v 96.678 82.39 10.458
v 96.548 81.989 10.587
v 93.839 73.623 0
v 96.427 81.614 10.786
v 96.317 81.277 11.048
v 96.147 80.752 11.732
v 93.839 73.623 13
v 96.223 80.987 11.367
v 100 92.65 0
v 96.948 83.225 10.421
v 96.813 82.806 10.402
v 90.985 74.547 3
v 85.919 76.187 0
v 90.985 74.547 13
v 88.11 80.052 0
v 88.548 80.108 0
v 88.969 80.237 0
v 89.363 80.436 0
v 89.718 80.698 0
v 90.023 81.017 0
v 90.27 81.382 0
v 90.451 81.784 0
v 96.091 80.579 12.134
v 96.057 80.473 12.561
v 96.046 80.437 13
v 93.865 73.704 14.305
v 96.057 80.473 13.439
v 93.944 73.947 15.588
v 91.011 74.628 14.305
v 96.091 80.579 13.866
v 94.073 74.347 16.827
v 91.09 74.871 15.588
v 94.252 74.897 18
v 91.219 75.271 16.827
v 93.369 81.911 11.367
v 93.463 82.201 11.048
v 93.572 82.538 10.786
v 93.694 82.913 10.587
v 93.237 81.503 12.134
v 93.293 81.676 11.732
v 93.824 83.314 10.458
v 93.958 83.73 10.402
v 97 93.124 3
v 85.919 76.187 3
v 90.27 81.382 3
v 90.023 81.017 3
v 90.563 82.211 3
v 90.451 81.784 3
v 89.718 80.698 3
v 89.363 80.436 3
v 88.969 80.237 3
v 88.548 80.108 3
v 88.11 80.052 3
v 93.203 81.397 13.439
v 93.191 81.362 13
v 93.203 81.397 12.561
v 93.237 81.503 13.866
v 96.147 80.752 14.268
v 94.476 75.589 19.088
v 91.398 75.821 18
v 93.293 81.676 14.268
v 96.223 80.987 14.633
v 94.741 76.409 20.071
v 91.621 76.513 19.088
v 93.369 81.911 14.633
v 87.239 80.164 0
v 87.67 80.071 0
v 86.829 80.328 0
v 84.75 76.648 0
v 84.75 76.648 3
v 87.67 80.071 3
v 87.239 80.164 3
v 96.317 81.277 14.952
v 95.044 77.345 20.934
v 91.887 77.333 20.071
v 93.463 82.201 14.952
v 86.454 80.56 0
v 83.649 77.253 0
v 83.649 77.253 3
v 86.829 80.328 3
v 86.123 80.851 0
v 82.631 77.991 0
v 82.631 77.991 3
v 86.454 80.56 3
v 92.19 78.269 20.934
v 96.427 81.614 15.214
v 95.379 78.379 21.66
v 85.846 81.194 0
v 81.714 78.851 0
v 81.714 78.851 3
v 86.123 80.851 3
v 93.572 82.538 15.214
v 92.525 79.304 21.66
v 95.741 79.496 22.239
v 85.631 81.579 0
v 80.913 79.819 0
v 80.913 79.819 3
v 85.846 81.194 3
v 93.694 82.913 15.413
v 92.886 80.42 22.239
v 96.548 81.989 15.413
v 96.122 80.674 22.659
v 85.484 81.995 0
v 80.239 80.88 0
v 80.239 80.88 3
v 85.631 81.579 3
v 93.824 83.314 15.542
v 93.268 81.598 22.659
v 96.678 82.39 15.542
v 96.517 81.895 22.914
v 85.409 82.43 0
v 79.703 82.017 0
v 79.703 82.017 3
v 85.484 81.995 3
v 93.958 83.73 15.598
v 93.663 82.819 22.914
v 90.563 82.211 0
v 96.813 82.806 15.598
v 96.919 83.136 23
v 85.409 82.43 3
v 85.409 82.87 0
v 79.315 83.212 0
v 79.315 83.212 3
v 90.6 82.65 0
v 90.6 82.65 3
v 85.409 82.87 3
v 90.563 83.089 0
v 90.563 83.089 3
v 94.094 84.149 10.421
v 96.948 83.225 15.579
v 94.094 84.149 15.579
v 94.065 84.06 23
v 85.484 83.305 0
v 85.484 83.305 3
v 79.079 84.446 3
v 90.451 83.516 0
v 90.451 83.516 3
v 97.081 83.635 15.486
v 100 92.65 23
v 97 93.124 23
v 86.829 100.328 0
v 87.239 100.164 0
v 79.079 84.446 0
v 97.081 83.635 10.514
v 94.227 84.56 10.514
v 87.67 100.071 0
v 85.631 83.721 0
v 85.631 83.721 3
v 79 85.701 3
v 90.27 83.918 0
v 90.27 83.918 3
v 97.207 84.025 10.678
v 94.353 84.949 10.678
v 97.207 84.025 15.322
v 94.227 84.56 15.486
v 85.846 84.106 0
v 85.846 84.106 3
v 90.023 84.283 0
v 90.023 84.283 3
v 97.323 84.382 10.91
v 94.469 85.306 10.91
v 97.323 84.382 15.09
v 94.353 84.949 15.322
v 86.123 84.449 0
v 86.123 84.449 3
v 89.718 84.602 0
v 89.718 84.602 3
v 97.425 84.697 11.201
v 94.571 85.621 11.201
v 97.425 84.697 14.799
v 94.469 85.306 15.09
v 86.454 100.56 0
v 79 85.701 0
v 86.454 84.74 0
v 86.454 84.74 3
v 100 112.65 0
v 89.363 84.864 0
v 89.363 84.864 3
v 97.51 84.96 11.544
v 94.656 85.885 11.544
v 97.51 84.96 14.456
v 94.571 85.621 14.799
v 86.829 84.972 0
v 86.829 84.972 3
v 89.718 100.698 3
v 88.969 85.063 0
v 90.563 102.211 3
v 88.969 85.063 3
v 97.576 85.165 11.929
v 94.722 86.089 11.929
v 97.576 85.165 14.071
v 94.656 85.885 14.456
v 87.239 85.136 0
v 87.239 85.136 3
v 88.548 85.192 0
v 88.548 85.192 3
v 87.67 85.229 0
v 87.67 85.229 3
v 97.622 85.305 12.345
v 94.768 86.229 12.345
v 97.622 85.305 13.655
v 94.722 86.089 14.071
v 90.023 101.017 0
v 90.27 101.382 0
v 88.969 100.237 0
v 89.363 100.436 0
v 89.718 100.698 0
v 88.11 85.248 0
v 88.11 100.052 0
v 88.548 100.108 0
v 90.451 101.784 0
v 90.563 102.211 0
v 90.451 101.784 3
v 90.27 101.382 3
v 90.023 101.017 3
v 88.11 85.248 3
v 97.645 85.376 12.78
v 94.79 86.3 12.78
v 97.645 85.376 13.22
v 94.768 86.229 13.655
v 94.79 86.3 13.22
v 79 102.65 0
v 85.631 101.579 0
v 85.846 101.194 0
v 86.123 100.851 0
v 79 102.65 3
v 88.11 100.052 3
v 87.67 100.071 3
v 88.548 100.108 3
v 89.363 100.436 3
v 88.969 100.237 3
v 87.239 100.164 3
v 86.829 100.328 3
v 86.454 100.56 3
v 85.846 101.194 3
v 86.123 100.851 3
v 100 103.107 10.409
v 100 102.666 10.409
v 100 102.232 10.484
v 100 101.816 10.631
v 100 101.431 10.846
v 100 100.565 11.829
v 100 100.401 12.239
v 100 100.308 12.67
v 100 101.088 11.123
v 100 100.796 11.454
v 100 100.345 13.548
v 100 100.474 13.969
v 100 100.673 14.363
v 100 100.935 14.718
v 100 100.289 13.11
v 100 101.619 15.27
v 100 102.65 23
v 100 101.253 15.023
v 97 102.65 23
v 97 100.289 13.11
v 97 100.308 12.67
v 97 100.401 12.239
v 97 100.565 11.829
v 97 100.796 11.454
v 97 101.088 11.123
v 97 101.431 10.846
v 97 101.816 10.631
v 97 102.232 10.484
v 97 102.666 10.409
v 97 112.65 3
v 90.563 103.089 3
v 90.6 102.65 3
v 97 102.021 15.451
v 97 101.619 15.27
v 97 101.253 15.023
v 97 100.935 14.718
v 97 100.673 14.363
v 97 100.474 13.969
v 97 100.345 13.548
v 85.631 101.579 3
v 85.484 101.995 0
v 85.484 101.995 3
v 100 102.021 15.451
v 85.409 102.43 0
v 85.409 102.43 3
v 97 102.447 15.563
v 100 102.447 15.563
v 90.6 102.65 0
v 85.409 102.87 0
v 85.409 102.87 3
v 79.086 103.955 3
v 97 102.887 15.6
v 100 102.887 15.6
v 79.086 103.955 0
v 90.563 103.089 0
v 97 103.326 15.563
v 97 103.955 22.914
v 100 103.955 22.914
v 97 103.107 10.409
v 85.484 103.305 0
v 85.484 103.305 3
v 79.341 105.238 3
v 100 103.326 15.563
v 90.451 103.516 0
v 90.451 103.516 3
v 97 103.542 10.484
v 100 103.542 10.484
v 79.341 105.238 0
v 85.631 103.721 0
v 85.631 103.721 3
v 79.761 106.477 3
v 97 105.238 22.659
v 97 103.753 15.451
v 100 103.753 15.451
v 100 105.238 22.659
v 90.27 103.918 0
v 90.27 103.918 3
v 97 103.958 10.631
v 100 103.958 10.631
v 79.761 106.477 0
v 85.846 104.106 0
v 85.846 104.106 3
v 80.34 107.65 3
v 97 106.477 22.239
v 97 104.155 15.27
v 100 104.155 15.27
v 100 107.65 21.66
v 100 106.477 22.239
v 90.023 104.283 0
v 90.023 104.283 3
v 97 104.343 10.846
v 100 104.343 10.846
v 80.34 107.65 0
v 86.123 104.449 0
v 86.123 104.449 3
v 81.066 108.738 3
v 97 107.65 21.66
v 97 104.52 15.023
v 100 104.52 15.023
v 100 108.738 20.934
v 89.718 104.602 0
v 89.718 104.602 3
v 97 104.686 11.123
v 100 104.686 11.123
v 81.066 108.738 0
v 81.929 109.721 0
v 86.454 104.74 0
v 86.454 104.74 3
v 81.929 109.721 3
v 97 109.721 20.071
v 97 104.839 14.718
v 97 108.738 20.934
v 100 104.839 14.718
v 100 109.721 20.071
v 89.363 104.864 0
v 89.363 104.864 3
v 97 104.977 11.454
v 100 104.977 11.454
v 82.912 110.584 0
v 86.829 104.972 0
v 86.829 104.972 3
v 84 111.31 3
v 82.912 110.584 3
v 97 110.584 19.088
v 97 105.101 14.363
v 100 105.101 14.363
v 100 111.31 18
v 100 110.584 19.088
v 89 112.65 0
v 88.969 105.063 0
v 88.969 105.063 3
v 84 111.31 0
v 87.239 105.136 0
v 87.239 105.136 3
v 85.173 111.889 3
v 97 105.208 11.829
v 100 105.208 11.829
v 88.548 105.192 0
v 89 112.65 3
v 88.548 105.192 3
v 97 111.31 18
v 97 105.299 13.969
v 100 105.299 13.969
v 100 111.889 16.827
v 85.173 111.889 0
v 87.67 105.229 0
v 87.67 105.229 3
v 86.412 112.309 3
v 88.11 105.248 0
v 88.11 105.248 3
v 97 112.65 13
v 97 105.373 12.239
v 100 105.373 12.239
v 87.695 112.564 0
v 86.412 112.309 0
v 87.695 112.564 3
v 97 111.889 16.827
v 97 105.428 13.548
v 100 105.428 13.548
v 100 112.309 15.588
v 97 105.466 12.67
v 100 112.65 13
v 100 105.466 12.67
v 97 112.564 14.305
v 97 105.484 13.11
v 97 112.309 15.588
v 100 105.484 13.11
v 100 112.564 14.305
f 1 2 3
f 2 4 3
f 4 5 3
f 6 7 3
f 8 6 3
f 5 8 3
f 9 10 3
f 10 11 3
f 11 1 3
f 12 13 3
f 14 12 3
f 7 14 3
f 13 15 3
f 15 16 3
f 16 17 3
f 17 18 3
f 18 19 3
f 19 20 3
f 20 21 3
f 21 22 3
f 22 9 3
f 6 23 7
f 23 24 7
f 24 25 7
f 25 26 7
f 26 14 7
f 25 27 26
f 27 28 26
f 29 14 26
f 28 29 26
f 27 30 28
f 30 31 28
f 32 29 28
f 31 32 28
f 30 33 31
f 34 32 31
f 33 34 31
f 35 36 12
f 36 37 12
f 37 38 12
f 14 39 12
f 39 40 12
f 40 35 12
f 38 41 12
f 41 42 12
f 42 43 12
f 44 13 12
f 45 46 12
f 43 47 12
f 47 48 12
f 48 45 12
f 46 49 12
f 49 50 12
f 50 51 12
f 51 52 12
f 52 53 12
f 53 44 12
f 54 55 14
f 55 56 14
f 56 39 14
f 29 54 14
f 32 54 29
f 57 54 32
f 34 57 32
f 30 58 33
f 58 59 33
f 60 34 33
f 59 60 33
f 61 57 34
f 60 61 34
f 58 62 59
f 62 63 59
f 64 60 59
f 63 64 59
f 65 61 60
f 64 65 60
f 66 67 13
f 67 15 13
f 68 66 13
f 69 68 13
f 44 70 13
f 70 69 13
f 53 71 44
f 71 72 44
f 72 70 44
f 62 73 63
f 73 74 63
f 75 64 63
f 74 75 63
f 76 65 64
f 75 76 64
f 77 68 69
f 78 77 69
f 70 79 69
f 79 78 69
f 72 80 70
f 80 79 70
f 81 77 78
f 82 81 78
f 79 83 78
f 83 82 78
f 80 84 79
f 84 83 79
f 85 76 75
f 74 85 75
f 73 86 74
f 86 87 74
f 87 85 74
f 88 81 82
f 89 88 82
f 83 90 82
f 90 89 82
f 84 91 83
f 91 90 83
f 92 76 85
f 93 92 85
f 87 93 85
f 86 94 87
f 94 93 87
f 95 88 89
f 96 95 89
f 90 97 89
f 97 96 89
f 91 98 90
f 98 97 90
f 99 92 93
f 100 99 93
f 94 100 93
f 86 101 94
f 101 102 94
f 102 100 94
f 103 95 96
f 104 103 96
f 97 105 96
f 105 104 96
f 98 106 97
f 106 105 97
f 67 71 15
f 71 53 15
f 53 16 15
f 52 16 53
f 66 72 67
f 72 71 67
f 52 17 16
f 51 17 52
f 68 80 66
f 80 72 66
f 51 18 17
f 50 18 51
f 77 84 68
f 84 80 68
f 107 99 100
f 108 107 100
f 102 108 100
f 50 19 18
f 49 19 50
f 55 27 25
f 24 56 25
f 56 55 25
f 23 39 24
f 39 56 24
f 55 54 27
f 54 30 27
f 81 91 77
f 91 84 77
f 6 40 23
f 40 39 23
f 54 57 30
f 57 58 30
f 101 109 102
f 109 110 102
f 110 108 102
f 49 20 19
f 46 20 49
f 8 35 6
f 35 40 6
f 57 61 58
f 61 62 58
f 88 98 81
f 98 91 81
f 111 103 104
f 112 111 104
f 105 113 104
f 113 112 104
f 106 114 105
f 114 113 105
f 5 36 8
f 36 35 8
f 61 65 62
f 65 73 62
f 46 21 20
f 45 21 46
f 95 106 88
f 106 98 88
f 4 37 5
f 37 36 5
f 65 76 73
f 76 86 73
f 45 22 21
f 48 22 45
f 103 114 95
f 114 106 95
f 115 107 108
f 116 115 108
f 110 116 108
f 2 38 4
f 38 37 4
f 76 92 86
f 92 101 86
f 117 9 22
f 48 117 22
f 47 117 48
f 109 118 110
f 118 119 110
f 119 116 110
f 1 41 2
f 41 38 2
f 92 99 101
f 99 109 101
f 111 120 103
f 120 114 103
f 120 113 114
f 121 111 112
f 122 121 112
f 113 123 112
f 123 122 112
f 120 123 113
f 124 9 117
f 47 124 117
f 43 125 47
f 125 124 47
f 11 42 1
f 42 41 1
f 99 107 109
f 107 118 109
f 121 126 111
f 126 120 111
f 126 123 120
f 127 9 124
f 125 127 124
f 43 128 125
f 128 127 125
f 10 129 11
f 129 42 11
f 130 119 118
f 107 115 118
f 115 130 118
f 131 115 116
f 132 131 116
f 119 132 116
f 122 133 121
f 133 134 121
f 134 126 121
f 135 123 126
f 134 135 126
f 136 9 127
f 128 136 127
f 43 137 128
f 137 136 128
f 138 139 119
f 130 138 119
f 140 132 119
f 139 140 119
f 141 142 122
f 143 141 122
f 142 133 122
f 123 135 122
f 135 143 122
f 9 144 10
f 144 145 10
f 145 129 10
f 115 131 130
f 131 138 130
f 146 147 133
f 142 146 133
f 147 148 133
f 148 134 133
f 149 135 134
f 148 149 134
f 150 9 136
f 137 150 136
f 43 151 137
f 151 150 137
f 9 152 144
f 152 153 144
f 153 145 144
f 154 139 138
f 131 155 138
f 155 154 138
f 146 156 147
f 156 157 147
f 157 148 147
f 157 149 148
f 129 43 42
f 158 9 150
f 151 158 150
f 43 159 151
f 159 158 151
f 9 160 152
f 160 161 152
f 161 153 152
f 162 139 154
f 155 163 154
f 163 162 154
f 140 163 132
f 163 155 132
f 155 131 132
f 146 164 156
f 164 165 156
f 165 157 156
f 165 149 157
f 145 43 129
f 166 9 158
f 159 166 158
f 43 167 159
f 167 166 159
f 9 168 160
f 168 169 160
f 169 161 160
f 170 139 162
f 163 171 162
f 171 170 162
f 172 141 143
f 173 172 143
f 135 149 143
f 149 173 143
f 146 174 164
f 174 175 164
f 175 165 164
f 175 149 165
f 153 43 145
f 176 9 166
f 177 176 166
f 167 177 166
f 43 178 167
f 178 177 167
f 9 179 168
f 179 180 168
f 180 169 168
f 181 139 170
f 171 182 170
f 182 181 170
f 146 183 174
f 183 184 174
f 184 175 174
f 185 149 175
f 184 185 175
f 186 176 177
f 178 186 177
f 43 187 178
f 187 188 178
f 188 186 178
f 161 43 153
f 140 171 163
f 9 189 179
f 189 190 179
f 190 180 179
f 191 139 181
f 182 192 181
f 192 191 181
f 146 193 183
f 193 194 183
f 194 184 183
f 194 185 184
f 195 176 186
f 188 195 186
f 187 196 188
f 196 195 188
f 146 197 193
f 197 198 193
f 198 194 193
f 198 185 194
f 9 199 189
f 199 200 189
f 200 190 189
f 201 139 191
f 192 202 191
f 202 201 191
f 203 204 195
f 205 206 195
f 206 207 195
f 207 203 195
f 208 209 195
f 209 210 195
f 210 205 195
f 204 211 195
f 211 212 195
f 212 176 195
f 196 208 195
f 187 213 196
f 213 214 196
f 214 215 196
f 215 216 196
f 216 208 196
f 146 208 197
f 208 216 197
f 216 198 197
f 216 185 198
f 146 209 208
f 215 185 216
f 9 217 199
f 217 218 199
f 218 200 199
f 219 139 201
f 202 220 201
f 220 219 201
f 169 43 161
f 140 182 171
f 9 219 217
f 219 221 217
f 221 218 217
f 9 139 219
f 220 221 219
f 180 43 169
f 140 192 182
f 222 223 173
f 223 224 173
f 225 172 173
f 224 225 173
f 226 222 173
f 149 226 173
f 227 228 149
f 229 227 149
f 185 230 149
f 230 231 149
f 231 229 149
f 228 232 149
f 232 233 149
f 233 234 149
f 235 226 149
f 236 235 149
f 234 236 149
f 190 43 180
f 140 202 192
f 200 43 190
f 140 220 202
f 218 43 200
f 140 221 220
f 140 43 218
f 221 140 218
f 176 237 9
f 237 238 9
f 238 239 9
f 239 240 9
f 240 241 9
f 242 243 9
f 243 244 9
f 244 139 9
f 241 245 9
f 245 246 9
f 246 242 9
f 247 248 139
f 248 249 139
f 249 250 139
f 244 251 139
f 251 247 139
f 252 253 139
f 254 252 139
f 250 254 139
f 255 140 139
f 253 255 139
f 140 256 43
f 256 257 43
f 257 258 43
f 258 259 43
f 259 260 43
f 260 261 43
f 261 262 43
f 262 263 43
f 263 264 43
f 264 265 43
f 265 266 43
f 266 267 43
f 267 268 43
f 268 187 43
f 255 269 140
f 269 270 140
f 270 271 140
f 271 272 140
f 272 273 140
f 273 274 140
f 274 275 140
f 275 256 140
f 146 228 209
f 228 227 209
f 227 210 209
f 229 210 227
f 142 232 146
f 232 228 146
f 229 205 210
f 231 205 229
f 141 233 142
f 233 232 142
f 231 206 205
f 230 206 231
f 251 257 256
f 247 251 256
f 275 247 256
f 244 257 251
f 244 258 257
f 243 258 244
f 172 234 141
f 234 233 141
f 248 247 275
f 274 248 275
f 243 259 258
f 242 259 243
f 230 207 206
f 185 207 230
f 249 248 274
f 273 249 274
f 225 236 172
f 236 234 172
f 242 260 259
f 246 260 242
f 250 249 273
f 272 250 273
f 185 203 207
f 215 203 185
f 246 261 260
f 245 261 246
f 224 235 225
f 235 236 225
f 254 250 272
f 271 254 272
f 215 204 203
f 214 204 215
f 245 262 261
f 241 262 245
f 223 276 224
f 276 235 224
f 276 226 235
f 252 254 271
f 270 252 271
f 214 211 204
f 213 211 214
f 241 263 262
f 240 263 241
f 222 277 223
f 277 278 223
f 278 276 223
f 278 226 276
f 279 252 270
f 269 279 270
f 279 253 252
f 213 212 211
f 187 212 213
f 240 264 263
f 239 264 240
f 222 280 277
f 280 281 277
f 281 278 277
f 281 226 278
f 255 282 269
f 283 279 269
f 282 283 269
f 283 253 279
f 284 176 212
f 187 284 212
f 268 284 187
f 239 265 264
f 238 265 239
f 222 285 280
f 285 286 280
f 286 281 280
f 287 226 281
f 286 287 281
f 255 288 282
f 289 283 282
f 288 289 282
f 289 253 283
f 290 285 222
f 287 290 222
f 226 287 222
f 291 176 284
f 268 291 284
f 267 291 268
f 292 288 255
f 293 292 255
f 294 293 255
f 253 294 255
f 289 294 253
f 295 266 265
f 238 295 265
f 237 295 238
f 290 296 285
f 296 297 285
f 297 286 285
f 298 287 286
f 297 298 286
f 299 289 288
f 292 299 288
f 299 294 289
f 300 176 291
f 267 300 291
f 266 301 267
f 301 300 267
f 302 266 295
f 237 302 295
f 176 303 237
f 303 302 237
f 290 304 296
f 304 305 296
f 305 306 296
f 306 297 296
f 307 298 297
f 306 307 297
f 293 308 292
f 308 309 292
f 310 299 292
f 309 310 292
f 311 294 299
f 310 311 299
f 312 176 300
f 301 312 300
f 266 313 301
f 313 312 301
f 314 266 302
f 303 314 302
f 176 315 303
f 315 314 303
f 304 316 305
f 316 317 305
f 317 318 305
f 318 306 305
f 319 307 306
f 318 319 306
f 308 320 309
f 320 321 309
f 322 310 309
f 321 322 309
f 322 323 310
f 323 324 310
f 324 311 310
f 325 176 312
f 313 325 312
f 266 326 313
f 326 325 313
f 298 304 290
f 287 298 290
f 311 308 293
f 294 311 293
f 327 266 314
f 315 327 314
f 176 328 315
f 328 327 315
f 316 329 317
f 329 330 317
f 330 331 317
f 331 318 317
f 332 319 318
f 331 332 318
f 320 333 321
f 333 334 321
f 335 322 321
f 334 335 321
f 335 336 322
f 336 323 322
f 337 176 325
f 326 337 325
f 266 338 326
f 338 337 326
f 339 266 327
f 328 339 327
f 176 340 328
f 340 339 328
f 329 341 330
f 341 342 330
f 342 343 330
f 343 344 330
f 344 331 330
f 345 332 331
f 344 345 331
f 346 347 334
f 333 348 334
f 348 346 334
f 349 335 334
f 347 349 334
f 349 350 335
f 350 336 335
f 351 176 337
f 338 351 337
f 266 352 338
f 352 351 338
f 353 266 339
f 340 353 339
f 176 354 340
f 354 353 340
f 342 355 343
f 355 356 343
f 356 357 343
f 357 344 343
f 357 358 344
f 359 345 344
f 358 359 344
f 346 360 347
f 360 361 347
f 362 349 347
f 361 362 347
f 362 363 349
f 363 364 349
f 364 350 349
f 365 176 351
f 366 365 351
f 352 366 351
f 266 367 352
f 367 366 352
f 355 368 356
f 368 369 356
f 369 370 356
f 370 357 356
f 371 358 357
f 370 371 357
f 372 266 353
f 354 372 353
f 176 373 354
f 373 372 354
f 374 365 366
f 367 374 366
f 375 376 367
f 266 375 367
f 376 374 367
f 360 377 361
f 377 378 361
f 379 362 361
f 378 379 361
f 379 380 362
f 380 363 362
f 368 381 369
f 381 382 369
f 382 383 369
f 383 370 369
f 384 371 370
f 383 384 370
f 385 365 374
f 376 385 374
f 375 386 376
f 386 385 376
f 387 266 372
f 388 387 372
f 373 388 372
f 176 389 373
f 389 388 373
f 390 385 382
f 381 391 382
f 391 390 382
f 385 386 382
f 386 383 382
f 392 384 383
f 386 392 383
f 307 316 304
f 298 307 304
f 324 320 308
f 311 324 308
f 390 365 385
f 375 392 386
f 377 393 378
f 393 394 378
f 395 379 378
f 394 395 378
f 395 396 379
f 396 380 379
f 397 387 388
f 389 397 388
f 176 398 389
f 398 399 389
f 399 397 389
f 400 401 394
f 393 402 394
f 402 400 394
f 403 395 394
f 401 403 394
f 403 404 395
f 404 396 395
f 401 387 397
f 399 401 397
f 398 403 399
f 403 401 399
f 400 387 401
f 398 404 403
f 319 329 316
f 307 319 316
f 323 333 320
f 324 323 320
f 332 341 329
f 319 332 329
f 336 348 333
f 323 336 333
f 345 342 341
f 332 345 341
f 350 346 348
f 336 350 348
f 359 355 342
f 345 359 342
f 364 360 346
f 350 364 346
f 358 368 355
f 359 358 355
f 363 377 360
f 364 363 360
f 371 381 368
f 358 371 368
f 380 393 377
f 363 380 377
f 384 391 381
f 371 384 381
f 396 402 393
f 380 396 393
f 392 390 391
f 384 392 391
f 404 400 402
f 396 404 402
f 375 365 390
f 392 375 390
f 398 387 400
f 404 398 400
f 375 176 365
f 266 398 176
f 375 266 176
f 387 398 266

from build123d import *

# Parameters (mm, degrees)
BOSS_EXTRU_1_DEPTH      = 23
BOSS_EXTRU_2_DEPTH      = 3
ENL_V_MAT_EXTRU_1_DEPTH = 3
ESQUISSE4_R             = 2.6
ENL_V_MAT_EXTRU_2_DEPTH = 3
ESQUISSE5_R             = 2.6
ENL_V_MAT_EXTRU_3_DEPTH = 3
ESQUISSE6_R             = 2.6
ENL_V_MAT_EXTRU_4_DEPTH = 3
CONG_1_R                = 10


with BuildPart() as part:
    # Esquisse1 → Boss.-Extru.1 (new body)
    with BuildSketch(Plane.XY):
        Polygon((100, 92.65), (100, 112.65), (97, 112.65), (97, 93.123594611), (90.984838829, 74.546771861), (93.838946748, 73.622613873), align=None)
    extrude(amount=BOSS_EXTRU_1_DEPTH)

    # Esquisse2 → Boss.-Extru.2 (add)
    with BuildSketch(Plane.XY):
        Polygon((90.984838829, 74.546771861), (79, 74.546771861), (79, 112.65), (97, 112.65), (97, 93.123594611), align=None)
    extrude(amount=BOSS_EXTRU_2_DEPTH)

    # Esquisse3 → Enlèv. mat.-Extru.1 (cut)
    with BuildSketch(Plane.XY.offset(3)):
        Polygon((90.984838829, 74.546771861), (79, 78.427453619), (79, 74.546771861), align=None)
    extrude(amount=-ENL_V_MAT_EXTRU_1_DEPTH, mode=Mode.SUBTRACT)

    # Esquisse4 → Enlèv. mat.-Extru.2 (cut)
    with BuildSketch(Plane.XY.offset(3)):
        with Locations((88, 102.65)):
            Circle(ESQUISSE4_R)
        with Locations((88, 82.65)):
            Circle(ESQUISSE4_R)
    extrude(amount=-ENL_V_MAT_EXTRU_2_DEPTH, mode=Mode.SUBTRACT)

    # Esquisse5 → Enlèv. mat.-Extru.3 (cut)
    with BuildSketch(Plane.ZY.offset(-97)):
        with Locations((13, 102.886797306)):
            Circle(ESQUISSE5_R)
    extrude(amount=-ENL_V_MAT_EXTRU_3_DEPTH, mode=Mode.SUBTRACT)

    # Esquisse6 → Enlèv. mat.-Extru.4 (cut)
    with BuildSketch(Plane(origin=(60.503141075, -19.590871368, 0), x_dir=(0, 0, 1), z_dir=(-0.9513693063481516, 0.30805266260598485, 0))):
        with Locations(Location((13, 108.712835188, 0), (0, 0, 270))):
            Circle(ESQUISSE6_R)
    extrude(amount=-ENL_V_MAT_EXTRU_4_DEPTH, mode=Mode.SUBTRACT)

    # Congé1
    cong_1_edges = [part.edges().sort_by_distance(p)[0] for p in [
        (98.5, 112.65, 23),
        (92.411892788, 74.084692867, 23),
        (79, 112.65, 1.5),
        (79, 78.427453619, 1.5),
    ]]
    fillet(cong_1_edges, radius=CONG_1_R)


solid = part.part
